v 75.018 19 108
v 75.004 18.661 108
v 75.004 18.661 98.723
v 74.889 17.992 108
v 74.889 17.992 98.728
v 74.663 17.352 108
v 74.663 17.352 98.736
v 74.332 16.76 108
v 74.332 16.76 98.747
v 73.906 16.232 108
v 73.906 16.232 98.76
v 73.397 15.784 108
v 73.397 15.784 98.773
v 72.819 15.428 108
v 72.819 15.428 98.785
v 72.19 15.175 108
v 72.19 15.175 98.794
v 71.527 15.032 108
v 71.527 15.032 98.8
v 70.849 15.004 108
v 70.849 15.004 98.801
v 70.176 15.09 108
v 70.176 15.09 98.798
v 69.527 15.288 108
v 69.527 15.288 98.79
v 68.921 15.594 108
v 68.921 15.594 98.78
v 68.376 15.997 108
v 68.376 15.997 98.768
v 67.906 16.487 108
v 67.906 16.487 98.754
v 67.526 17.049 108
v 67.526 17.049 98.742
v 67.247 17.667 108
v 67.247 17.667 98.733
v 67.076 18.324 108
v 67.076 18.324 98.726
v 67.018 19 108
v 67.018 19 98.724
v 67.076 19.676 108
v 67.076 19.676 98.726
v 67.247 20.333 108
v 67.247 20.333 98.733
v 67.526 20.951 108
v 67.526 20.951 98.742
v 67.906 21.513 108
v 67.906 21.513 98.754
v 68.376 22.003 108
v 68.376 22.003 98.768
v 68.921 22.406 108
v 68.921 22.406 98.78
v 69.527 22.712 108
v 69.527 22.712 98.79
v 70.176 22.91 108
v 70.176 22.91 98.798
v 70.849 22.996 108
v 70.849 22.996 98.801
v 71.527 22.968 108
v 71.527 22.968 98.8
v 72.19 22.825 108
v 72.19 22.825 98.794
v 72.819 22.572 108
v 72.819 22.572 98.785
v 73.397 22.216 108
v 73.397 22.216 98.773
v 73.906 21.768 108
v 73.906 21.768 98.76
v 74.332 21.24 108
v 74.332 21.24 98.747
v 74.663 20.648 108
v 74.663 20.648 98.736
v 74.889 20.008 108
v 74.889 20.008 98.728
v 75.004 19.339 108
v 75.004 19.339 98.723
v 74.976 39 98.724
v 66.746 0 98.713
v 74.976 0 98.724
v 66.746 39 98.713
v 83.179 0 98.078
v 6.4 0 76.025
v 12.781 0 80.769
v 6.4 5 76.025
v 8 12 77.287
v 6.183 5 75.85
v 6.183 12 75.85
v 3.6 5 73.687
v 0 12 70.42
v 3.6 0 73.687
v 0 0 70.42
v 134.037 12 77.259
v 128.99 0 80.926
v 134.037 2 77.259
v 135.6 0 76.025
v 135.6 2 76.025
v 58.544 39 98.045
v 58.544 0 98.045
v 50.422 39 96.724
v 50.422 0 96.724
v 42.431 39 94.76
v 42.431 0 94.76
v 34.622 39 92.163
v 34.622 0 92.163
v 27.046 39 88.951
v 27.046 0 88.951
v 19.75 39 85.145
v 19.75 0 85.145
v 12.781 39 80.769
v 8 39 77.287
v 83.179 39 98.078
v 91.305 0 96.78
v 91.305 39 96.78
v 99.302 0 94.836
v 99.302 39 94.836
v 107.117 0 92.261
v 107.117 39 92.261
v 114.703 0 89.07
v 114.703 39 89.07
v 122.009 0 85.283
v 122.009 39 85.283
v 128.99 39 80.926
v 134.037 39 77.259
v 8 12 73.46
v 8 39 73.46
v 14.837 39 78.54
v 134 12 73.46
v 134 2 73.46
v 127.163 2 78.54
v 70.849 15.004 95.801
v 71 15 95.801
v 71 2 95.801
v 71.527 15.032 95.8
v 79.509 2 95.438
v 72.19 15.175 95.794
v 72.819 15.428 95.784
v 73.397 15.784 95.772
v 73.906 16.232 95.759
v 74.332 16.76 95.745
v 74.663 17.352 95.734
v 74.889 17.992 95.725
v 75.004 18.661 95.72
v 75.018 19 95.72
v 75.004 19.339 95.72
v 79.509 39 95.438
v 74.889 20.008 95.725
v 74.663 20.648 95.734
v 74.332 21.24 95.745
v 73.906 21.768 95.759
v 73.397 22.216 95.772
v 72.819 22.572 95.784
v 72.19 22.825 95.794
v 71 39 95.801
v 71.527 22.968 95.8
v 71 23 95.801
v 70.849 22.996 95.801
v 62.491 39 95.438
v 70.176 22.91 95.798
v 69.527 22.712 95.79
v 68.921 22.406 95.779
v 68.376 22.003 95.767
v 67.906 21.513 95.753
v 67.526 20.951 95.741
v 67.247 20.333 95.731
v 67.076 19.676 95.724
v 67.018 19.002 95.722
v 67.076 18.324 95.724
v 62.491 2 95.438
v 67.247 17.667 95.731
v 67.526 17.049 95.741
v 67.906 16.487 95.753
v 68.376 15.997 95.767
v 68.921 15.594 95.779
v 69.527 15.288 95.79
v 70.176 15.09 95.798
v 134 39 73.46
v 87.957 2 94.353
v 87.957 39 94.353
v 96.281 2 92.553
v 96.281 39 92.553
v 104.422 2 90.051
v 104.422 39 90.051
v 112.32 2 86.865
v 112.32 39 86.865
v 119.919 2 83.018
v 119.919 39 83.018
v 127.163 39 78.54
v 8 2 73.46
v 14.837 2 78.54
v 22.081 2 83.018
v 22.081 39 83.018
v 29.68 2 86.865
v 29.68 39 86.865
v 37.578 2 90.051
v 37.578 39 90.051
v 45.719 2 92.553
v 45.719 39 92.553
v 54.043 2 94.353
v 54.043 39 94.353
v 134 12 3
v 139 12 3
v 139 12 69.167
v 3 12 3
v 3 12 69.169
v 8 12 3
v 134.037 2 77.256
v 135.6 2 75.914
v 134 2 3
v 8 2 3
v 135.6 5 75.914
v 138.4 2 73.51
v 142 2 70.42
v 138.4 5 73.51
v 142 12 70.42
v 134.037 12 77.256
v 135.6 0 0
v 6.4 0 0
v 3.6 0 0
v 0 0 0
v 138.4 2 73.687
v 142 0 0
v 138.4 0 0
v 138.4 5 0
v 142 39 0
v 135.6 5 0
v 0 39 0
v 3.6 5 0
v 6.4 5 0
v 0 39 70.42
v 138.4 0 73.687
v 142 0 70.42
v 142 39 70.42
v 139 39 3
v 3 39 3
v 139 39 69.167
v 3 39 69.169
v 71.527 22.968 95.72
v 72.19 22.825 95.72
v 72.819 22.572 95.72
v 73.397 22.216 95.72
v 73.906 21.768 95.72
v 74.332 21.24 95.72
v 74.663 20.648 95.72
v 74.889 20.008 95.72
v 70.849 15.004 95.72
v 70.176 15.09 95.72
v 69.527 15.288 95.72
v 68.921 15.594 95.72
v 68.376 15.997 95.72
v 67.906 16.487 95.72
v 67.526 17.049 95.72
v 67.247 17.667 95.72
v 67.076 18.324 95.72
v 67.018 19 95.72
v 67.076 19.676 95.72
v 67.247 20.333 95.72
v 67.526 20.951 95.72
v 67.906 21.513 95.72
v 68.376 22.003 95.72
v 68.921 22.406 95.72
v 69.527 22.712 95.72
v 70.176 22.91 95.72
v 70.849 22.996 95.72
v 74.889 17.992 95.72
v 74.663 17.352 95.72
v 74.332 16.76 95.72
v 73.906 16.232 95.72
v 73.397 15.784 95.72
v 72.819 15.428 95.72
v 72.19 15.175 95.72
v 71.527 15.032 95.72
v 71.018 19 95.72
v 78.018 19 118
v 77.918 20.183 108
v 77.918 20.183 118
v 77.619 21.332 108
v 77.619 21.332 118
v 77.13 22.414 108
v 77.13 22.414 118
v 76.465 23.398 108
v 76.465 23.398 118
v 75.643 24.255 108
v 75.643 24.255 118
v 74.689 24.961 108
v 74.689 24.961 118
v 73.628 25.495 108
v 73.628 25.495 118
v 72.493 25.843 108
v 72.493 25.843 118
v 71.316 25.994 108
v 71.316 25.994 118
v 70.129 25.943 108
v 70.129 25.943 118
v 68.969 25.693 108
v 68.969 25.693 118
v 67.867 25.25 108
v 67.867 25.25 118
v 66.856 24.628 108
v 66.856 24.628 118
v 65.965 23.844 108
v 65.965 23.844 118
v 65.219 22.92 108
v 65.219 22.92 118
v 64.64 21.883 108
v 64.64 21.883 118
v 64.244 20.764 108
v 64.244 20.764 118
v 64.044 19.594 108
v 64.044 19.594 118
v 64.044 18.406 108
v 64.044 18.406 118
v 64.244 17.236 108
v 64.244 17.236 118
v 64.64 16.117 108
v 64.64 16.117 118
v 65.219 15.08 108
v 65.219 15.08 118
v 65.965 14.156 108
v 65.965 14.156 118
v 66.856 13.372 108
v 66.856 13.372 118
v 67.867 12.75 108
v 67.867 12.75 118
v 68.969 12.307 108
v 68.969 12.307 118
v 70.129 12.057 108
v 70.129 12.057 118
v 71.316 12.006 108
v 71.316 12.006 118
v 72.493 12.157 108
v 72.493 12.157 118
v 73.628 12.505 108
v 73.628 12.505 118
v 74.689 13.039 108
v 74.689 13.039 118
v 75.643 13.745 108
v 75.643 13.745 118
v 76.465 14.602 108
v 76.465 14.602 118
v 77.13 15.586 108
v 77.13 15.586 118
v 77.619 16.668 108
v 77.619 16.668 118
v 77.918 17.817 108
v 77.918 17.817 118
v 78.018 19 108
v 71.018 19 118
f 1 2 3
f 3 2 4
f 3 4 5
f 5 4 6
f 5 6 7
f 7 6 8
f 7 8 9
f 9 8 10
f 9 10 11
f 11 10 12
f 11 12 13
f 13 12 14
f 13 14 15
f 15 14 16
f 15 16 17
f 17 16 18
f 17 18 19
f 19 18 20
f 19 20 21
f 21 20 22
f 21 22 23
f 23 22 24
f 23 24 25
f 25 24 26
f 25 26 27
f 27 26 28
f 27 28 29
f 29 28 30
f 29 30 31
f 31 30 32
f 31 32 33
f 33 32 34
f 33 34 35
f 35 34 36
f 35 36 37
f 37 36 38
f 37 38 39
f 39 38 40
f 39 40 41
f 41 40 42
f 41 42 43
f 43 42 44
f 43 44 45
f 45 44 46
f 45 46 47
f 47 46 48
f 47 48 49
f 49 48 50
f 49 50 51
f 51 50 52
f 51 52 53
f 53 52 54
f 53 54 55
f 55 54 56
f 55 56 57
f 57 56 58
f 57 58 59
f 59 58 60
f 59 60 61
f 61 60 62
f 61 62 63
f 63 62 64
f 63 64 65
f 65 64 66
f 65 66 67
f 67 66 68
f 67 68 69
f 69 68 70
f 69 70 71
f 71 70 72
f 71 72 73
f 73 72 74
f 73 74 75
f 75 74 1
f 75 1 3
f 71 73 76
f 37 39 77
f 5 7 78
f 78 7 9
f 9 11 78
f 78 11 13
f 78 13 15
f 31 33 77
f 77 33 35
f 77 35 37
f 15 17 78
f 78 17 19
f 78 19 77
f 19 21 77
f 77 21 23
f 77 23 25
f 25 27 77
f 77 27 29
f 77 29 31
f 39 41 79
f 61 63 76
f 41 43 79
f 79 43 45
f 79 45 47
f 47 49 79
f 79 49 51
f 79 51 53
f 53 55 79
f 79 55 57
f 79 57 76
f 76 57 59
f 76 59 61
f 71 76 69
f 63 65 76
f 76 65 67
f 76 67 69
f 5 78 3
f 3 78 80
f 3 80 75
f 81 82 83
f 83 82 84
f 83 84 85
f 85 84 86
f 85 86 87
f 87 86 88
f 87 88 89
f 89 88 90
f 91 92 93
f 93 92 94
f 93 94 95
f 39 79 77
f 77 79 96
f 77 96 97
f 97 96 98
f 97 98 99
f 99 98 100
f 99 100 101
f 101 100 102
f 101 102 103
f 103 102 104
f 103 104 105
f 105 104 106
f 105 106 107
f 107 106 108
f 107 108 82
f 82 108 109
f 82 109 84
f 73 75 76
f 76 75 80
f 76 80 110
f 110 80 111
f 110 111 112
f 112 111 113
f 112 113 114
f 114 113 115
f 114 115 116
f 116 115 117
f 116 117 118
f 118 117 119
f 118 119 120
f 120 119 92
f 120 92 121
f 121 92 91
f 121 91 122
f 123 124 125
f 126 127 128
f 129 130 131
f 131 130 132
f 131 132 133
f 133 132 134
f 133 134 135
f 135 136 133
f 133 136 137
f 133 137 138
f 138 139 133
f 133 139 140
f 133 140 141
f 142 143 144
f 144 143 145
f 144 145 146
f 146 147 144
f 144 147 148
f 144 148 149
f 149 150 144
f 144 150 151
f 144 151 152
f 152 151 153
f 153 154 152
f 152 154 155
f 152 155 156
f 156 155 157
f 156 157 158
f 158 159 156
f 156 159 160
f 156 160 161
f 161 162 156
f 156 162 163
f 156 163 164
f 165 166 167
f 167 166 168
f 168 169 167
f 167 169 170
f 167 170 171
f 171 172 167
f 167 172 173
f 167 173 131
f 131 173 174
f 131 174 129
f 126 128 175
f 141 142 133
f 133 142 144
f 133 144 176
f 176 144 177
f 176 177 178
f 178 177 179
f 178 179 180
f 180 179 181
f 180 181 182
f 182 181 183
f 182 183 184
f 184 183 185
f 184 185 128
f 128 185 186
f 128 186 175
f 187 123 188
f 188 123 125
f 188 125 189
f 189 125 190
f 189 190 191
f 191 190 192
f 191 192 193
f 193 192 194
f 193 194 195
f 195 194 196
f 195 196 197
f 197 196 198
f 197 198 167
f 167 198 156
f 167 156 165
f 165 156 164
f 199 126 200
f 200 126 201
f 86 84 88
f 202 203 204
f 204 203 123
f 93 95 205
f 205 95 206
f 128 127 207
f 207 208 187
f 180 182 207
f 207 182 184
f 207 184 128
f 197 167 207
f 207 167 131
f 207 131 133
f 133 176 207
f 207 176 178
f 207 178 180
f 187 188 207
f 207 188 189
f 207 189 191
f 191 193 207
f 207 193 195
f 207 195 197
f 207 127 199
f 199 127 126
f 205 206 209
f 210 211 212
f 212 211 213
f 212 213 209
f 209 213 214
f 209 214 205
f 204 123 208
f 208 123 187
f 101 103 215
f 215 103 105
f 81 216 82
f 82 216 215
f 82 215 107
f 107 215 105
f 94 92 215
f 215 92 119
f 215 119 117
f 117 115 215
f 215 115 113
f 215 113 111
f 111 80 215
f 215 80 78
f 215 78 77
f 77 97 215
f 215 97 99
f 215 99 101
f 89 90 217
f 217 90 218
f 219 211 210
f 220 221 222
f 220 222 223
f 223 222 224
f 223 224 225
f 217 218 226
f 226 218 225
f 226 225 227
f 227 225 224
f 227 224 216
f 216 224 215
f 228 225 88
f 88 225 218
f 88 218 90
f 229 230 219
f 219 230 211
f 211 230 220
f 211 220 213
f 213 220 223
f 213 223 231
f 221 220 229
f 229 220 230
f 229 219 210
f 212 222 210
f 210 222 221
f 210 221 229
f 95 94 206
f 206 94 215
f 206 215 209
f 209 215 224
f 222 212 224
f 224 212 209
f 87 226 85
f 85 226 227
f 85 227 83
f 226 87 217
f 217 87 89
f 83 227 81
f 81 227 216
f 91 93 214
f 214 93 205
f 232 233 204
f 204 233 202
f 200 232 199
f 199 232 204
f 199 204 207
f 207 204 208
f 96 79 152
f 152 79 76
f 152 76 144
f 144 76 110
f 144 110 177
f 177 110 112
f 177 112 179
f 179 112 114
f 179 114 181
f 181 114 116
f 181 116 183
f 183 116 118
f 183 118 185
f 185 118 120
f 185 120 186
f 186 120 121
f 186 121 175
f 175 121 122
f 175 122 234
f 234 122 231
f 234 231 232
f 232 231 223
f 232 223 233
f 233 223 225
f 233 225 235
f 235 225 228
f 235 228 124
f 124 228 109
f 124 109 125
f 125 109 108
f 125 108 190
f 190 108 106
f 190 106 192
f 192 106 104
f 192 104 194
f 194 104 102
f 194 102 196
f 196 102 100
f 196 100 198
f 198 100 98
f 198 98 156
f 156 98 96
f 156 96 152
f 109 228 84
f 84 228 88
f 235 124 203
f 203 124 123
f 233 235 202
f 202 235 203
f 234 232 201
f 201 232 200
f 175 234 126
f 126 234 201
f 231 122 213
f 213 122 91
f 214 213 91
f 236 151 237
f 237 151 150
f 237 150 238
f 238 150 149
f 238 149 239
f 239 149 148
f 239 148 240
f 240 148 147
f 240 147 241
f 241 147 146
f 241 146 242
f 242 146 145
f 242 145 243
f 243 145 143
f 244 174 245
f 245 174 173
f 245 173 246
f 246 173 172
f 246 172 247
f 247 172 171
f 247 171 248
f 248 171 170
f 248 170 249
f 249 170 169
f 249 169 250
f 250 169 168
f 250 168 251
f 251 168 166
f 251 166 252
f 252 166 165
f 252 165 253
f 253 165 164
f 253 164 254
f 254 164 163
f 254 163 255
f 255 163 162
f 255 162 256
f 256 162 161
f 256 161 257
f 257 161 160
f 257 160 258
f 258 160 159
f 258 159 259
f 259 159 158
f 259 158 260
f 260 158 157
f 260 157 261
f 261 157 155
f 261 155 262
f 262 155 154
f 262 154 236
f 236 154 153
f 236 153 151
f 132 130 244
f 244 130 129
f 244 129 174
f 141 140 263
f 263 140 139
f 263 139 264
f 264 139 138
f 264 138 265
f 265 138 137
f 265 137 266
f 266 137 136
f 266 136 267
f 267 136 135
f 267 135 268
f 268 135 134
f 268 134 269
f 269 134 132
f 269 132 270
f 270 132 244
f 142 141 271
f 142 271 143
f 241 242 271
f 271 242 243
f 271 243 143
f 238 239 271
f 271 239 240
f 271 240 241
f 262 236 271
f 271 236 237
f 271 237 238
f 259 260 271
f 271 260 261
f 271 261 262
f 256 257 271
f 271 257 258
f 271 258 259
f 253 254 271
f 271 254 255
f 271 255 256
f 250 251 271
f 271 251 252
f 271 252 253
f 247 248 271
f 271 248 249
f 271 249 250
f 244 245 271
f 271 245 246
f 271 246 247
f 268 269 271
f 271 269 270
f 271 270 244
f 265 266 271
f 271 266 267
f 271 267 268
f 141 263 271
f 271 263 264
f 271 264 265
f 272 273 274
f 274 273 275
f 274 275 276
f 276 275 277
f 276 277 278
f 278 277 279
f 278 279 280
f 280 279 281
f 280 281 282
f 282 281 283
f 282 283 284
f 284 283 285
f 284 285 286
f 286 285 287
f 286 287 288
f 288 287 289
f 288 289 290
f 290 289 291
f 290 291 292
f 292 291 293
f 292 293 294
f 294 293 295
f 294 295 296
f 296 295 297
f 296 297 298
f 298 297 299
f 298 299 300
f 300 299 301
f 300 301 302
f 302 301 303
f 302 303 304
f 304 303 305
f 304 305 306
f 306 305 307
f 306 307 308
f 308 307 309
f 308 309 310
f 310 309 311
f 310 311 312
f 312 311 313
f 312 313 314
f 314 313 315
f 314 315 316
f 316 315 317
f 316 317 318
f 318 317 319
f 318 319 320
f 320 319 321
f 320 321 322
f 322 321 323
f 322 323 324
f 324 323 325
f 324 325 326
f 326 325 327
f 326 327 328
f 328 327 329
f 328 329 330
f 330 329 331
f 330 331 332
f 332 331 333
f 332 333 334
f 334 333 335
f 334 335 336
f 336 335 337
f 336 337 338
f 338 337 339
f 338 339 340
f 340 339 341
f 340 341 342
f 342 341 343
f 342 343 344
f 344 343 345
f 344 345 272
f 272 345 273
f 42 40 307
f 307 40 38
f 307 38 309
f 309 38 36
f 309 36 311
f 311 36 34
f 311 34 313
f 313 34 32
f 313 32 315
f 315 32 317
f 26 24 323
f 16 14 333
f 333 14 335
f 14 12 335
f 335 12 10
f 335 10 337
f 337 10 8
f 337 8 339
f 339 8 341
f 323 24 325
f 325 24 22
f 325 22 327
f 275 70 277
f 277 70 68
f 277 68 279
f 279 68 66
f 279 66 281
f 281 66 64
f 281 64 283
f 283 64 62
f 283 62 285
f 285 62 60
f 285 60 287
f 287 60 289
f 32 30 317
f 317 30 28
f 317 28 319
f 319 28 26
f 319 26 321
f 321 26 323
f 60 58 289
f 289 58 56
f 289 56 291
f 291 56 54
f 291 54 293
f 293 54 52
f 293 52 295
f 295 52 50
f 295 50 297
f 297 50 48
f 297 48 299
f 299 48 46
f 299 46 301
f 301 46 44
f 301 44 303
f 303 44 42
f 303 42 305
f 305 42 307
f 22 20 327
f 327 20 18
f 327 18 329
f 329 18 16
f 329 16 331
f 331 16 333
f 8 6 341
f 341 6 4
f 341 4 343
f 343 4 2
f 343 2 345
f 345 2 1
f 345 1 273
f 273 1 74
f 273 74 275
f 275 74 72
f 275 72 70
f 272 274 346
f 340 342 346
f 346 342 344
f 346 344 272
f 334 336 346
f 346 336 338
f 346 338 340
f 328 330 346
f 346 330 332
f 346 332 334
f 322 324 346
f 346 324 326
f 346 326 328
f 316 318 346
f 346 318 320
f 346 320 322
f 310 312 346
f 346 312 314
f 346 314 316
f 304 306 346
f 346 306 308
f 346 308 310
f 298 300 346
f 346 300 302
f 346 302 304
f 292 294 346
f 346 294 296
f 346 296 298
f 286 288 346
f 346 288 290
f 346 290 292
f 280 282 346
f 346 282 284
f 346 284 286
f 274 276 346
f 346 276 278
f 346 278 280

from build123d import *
from build123d.topology import SkipClean

# Parameters (mm, degrees)
EXTRUDE_1_DEPTH      = 2
EXTRUDE_2_DEPTH      = 10
CUT_EXTRUDE_1_DEPTH  = 5
SKETCH_4_W           = 126
SKETCH_4_H           = 3
EXTRUDE_4_DEPTH      = 37
EXTRUDE_5_DEPTH      = 27
SKETCH_6_R           = 4
EXTRUDE_6_DEPTH      = 110
SKETCH_7_W           = 8
SKETCH_7_H           = 92.720195249
CUT_EXTRUDE_2_DEPTH  = 25
EXTRUDE_7_DEPTH      = 5
EXTRUDE_7_DEPTH_BACK = 5
SKETCH_8_R           = 7


with BuildPart() as part:
    # 草图1 → 凸台-拉伸1 (new body)
    with BuildSketch(Plane(origin=(0, 0, 0), x_dir=(1, 0, 0), z_dir=(0, 1, 0))):
        with BuildLine():
            Line((0, 0), (0, -70.42))
            ThreePointArc((0, -70.42), (71, -98.800967575), (142, -70.42))
            Line((142, -70.42), (142, 0))
            Line((142, 0), (0, 0))
        make_face()
    extrude(amount=EXTRUDE_1_DEPTH)

    # 草图2 → 凸台-拉伸2 (add)
    with BuildSketch(Plane(origin=(0, 2, 0), x_dir=(1, 0, 0), z_dir=(0, 1, 0))):
        with BuildLine():
            Line((8, 0), (8, -77.287162725))
            ThreePointArc((8, -77.287162725), (3.912076489, -73.956009121), (0, -70.42))
            Line((0, -70.42), (0, 0))
            Line((0, 0), (8, 0))
        make_face()
        Polygon((134, -77.287162725), (134, 0), (142, 0), (142, -70.42), align=None)
    extrude(amount=EXTRUDE_2_DEPTH)

    # 草图3 → 切除-拉伸1 (cut)
    with BuildSketch(Plane.XZ):
        Polygon((3.6, 0), (3.6, 73.687038217), (3.6, 76.02465485), (6.4, 76.02465485), (6.4, 0), align=None)
        Polygon((138.4, 0), (138.4, 73.687038217), (138.4, 76.02465485), (135.6, 76.02465485), (135.6, 0), align=None)
    extrude(amount=-CUT_EXTRUDE_1_DEPTH, mode=Mode.SUBTRACT)

    # 草图4 → 凸台-拉伸4 (add)
    with SkipClean():  # the faces are left unmerged after this step: merging them gives an invalid solid
        with BuildSketch(Plane(origin=(0, 2, 0), x_dir=(1, 0, 0), z_dir=(0, 1, 0))):
            with Locations((71, -1.5)):
                Rectangle(SKETCH_4_W, SKETCH_4_H)
            with BuildLine():
                Line((8, -73.460480837), (8, -77.287162725))
                ThreePointArc((8, -77.287162725), (71.023325312, -98.800964934), (134.036900158, -77.258620491))
                Line((134.036900158, -77.258620491), (134, -73.460480837))
                ThreePointArc((134, -73.460480837), (71, -95.800967575), (8, -73.460480837))
            make_face()
        extrude(amount=EXTRUDE_4_DEPTH)

    # 草图5 → 凸台-拉伸5 (add)
    with SkipClean():  # the faces are left unmerged after this step: merging them gives an invalid solid
        with BuildSketch(Plane(origin=(0, 12, 0), x_dir=(1, 0, 0), z_dir=(0, 1, 0))):
            Polygon((134, 0), (142, 0), (142, -70.42), (134.036900158, -77.258620491), (134, -73.460480837), (139, -69.16653713), (139, -3), (134, -3), align=None)
            Polygon((8, -3), (8, 0), (0, 0), (0, -70.42), (8, -77.287162725), (8, -73.460480837), (3, -69.168504133), (3, -3), align=None)
        extrude(amount=EXTRUDE_5_DEPTH)

    # 草图6 → 凸台-拉伸6 (add)
    with BuildSketch(Plane.XY.offset(3)):
        with Locations((71.018450079, 19)):
            Circle(SKETCH_6_R)
    extrude(amount=EXTRUDE_6_DEPTH)

    # 草图7 → 切除-拉伸2 (cut)
    with BuildSketch(Plane(origin=(0, 39, 0), x_dir=(1, 0, 0), z_dir=(0, 1, 0))):
        with Locations((71.018450079, -49.360097624)):
            Rectangle(SKETCH_7_W, SKETCH_7_H)
    extrude(amount=-CUT_EXTRUDE_2_DEPTH, mode=Mode.SUBTRACT)

    # 草图8 → 凸台-拉伸7 (add, two sides: drawn at the far end of the back side and taken through both)
    with BuildSketch(Plane.XY.offset(113).offset(-EXTRUDE_7_DEPTH_BACK)):
        with Locations((71.018450079, 19)):
            Circle(SKETCH_8_R)
    extrude(amount=EXTRUDE_7_DEPTH + EXTRUDE_7_DEPTH_BACK)


solid = part.part
